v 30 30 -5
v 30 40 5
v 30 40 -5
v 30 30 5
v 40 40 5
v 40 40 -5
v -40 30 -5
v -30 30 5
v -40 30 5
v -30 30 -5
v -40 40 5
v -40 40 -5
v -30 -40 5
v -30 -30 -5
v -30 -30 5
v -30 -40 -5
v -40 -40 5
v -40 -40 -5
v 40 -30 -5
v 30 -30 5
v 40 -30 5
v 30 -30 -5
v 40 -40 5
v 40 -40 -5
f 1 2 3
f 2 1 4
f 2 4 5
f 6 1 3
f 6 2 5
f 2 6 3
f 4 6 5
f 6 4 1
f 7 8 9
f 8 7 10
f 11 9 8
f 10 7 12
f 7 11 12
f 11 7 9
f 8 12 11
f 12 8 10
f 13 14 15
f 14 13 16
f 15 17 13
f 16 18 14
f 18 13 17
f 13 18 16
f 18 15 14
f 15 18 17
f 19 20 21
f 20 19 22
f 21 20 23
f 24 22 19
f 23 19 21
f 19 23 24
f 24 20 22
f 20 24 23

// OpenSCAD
// file: def.scad
block_size_3 = 19;
block_size_4 = 16;
block_size_5 = 14;
block_size_6 = 12.5;
block_size_7 = 11;
block_size_8 = 10;

inf = 1000;

round_radius = 1;
sticker_margin = 2.5;
sticker_round_radius = 0.75;

module _block(size) {
    minkowski() {
        cube([size - round_radius * 2, size - round_radius * 2, size - round_radius * 2], center = true);
        sphere(r = round_radius, $fn = 24);
    }
}

module _selector_0(size) {
    cube([size - 0.2, size - 0.2, size - 0.2], center = true);
}

module _sticker(size) {
    minkowski() {
        cube([size - sticker_margin * 2, size - sticker_margin * 2, 0.1], center = true);
        cylinder(r = sticker_round_radius, h = 0.1, $fn = 24);
    }
}

module _selector_corner_cw(size) {
    difference() {
        cube([size, size, size], center = true);
        rotate([0, -45, 0])
            translate([-inf, -inf, 0])
                cube([inf * 2, inf * 2, inf]);
        rotate([90, 0, 45])
            translate([-inf, -inf, 0])
                cube([inf * 2, inf * 2, inf]);
    }
}

module _selector_corner_ccw(size) {
    difference() {
        cube([size, size, size], center = true);
        rotate([45, 0, 0])
            translate([-inf, -inf, 0])
                cube([inf * 2, inf * 2, inf]);
        rotate([0, -90, -45])
            translate([-inf, -inf, 0])
                cube([inf * 2, inf * 2, inf]);
    }
}

module _selector_edge_cw(size) {
    difference() {
        cube([size, size, size], center = true);
        rotate([90, 0, 45])
            translate([-inf, -inf, 0])
                cube([inf * 2, inf * 2, inf]);
    }
}

module _selector_edge_ccw(size) {
    difference() {
        cube([size, size, size], center = true);
        rotate([0, -90, -45])
            translate([-inf, -inf, 0])
                cube([inf * 2, inf * 2, inf]);
    }
}
// main file
include <def.scad>

for (deg = [0 : 90 : 270])
    rotate([0, 0, deg])
        translate([block_size_8 * 3.5, block_size_8 * 3.5, 0])
            _selector_edge_cw(block_size_8);
